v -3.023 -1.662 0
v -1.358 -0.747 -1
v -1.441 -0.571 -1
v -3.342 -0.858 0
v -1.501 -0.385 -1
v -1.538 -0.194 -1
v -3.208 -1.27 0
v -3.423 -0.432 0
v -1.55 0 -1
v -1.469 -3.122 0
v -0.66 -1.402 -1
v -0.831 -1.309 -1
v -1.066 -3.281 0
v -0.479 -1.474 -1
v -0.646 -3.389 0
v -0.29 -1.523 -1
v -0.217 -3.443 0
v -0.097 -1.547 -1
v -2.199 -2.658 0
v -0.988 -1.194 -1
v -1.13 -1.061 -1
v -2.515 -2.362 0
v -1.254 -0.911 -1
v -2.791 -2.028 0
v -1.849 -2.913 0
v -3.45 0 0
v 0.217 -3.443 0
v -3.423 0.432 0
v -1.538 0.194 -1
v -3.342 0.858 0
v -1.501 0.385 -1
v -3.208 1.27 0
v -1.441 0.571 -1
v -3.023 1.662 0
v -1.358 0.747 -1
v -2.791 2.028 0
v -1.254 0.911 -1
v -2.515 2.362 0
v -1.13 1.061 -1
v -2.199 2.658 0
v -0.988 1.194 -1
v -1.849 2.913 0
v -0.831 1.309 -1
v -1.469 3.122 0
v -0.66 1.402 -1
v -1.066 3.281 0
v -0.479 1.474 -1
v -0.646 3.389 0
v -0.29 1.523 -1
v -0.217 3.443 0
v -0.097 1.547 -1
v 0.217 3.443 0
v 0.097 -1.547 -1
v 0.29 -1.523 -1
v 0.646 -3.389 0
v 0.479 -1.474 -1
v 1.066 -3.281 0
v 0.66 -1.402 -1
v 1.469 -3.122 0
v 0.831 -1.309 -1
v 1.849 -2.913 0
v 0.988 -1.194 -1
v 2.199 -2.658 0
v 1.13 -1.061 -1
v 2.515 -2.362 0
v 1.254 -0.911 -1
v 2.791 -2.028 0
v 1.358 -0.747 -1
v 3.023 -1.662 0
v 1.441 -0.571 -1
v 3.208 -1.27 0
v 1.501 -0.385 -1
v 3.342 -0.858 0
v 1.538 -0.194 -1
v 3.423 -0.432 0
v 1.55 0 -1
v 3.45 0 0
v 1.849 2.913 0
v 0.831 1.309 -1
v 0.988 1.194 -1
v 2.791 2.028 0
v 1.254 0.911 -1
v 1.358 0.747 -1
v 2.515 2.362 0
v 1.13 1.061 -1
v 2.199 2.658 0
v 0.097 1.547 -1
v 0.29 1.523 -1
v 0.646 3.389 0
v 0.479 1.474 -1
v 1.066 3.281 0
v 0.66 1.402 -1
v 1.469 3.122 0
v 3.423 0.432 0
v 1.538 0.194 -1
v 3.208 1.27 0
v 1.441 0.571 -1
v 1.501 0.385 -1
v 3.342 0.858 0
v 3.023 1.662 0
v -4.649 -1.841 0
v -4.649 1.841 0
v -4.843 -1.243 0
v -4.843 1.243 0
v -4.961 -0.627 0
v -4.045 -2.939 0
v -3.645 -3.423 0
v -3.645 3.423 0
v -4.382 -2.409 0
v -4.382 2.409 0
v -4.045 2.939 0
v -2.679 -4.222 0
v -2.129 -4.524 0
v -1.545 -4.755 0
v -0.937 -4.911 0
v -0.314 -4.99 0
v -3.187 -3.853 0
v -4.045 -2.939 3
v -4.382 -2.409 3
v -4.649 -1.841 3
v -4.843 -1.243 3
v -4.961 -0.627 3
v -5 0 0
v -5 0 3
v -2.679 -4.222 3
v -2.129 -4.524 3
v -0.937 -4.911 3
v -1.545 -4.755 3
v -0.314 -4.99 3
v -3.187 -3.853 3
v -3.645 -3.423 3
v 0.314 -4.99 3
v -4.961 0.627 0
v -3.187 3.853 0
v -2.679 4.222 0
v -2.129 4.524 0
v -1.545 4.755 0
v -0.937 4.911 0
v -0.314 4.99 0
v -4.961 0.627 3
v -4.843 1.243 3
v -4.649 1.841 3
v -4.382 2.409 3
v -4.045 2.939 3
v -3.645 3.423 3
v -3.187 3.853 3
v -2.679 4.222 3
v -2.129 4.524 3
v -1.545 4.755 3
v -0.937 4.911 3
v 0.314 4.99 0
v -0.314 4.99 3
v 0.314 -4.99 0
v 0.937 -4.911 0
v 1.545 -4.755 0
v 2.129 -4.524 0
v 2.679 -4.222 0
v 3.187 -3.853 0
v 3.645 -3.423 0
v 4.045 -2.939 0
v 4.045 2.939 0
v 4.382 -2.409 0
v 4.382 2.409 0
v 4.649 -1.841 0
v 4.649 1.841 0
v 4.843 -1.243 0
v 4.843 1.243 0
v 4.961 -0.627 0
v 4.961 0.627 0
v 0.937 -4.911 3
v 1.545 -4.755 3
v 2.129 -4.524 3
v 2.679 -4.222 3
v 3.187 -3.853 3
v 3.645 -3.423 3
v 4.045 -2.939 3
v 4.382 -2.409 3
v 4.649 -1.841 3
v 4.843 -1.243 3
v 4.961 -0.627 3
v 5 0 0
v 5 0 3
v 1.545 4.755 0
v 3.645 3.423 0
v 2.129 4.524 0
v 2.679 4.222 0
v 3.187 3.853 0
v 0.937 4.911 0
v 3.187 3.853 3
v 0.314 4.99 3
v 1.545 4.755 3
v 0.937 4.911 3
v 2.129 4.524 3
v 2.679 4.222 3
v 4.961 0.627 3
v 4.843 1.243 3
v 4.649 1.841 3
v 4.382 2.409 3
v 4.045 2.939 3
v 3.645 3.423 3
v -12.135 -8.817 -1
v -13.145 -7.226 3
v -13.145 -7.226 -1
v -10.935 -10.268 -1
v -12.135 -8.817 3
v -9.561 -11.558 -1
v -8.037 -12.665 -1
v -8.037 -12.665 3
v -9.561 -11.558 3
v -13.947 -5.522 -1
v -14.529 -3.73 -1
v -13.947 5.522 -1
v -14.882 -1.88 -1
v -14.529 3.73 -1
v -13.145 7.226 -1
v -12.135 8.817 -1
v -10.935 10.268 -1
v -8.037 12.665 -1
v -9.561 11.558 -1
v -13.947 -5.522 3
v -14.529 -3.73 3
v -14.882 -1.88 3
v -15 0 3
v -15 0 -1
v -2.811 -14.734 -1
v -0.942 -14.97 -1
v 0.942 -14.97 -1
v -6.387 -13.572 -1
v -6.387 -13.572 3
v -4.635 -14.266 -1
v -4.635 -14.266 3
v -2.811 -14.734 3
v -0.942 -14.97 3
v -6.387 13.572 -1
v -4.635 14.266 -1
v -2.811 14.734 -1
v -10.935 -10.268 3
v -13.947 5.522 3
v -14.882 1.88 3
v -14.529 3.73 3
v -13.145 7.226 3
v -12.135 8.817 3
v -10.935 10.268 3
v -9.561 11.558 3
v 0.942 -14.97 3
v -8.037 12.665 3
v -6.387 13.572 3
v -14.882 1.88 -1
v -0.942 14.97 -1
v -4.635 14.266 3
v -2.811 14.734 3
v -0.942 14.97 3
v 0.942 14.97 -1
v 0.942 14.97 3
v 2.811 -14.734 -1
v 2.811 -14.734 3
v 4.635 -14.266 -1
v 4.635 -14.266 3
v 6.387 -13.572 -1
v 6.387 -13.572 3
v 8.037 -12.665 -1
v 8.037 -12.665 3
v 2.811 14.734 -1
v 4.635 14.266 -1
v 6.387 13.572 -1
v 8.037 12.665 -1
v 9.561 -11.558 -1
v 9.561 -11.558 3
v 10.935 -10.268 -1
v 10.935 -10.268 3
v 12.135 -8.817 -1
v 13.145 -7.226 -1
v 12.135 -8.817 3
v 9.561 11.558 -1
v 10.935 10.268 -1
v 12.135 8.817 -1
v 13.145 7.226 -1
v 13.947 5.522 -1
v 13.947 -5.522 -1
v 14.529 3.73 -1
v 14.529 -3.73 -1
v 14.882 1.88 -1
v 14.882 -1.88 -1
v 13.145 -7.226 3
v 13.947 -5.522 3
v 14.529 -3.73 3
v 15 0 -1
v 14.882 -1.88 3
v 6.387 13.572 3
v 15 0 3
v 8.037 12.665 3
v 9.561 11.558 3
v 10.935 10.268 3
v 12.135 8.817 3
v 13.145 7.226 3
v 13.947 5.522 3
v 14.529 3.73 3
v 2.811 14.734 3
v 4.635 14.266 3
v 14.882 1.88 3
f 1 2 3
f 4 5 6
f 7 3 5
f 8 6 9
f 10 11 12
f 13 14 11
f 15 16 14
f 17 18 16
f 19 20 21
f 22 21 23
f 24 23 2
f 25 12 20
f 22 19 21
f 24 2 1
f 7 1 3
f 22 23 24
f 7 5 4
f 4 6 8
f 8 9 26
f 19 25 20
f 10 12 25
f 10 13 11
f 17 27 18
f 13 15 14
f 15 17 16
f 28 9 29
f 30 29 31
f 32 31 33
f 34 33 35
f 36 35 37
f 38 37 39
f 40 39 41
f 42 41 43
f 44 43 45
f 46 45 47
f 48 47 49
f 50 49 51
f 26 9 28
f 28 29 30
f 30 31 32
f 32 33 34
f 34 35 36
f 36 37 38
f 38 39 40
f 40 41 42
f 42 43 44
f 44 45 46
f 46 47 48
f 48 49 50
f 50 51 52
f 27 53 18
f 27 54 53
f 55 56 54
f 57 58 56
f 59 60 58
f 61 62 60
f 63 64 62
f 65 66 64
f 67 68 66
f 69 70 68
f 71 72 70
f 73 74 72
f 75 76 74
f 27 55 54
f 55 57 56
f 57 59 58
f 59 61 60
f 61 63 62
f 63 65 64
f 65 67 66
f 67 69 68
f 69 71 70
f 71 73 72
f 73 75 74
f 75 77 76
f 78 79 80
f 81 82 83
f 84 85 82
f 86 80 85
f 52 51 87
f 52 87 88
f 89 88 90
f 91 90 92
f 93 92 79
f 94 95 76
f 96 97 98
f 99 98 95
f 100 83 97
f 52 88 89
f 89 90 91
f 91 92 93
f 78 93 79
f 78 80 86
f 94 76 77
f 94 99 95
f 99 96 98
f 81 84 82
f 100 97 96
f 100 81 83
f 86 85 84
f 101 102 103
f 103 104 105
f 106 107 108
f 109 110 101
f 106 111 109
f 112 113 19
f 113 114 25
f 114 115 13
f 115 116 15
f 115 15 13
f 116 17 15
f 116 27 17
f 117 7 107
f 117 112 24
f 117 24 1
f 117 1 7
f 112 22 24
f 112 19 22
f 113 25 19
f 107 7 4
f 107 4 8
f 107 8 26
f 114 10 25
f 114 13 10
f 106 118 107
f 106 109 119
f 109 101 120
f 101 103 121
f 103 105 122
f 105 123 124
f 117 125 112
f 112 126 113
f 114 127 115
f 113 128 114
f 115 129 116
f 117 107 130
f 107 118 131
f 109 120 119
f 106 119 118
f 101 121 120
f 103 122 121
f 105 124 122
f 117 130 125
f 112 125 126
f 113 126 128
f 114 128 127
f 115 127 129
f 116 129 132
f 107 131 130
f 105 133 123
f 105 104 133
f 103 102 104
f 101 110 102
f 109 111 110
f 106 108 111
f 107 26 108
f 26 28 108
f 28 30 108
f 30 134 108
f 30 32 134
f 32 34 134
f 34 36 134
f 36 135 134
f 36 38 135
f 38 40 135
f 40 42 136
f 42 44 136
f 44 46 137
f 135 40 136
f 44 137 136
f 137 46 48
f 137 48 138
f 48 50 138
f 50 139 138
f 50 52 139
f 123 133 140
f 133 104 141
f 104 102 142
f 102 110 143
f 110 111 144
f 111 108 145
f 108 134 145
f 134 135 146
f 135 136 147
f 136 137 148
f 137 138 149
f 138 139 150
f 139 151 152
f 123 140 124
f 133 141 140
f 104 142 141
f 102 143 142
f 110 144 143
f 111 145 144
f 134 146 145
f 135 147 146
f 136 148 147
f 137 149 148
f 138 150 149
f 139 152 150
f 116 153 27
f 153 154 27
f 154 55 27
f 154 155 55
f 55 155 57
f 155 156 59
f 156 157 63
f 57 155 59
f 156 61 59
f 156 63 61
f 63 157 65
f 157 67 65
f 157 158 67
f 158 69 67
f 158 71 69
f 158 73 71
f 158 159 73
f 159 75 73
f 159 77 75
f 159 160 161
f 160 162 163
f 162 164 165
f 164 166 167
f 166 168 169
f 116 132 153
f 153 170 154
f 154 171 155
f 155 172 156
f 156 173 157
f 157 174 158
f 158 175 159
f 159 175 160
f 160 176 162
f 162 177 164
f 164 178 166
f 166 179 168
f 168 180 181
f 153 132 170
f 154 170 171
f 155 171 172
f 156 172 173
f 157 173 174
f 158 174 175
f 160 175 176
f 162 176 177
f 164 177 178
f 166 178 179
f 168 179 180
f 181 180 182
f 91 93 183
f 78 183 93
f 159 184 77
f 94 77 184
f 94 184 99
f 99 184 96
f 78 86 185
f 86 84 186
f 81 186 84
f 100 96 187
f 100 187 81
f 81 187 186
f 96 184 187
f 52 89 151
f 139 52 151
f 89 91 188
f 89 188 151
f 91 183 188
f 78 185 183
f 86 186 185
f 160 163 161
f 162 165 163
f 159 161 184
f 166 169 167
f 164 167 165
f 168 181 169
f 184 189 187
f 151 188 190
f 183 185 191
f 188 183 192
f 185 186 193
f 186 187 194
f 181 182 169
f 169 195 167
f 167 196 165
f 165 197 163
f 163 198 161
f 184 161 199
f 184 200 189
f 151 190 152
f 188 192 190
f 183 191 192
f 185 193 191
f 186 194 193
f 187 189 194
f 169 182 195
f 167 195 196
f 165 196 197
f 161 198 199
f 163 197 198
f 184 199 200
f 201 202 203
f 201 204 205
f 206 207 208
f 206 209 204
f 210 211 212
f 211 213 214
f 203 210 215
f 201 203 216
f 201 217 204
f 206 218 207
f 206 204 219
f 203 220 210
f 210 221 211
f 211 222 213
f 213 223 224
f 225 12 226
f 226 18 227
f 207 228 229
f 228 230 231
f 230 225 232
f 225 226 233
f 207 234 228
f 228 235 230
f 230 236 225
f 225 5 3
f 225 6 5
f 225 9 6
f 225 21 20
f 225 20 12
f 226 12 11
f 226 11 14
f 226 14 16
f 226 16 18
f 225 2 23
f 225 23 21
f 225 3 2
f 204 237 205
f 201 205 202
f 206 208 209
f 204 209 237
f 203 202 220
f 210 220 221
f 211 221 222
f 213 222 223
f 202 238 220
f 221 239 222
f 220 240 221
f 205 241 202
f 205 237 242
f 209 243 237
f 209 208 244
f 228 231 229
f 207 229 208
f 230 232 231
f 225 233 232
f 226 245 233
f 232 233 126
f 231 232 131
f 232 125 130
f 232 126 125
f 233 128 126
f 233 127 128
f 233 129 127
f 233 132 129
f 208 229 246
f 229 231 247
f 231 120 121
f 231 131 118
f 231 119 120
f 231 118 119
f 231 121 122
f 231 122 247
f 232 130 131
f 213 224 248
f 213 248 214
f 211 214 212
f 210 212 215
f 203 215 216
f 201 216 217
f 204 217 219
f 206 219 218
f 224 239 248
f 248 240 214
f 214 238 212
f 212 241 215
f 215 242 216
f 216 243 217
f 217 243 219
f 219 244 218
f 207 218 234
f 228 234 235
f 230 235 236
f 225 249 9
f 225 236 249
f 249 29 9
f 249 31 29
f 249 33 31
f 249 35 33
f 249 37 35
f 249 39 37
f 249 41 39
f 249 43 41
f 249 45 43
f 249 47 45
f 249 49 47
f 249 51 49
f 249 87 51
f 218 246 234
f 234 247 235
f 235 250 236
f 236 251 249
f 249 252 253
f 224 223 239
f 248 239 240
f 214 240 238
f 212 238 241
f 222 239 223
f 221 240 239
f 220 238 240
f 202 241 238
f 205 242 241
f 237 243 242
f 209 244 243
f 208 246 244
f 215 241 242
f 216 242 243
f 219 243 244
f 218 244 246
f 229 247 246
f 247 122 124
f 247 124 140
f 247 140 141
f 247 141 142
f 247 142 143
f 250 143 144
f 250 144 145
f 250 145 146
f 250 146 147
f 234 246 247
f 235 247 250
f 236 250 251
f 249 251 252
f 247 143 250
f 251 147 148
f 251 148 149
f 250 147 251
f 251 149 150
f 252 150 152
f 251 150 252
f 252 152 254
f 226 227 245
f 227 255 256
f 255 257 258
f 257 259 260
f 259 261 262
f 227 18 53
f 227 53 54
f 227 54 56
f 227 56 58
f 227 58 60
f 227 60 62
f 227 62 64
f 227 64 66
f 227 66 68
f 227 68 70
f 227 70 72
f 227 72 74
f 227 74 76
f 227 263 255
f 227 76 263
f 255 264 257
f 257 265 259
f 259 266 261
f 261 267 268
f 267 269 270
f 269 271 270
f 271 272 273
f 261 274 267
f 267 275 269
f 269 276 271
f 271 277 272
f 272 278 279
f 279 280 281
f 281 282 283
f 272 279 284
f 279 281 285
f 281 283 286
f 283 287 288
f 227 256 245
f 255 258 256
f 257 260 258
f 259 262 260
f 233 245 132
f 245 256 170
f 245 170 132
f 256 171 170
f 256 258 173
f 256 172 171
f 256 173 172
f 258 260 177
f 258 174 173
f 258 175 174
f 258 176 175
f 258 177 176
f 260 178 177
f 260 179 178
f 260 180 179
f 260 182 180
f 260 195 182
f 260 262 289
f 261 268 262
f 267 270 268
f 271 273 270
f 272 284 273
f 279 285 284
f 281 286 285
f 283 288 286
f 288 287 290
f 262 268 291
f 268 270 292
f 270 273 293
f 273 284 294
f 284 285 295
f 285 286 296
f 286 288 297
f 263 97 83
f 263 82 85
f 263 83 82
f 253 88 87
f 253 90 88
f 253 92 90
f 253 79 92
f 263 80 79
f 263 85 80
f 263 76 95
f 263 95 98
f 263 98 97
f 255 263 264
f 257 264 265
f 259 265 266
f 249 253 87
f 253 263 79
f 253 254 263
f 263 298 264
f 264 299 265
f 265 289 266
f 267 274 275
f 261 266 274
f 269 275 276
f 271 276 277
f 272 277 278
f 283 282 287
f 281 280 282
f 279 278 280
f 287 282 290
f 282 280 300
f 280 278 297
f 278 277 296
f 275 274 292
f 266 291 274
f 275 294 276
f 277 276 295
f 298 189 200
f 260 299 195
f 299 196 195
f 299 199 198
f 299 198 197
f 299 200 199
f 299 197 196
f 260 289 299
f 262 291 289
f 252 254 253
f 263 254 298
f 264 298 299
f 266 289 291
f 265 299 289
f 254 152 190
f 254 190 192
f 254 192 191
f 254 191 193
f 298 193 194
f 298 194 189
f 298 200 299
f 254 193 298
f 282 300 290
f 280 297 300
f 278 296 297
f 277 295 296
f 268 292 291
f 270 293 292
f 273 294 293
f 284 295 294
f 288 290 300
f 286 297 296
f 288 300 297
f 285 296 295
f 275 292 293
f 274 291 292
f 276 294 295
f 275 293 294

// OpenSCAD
$fn = 50;

difference() {
	union() {
		translate(v = [0, 0, -1.0]) {
			cylinder(h = 4.0, r = 15.0);
		}
	}
	union() {
		translate(v = [0, 0, 0]) {
			rotate(a = [0, 0, 0]) {
				difference() {
					union() {
						translate(v = [0, 0, -4.0]) {
							cylinder(h = 4.0, r = 1.25);
						}
						translate(v = [0, 0, -1.0]) {
							cylinder(h = 1.0, r1 = 1.55, r2 = 3.45);
						}
						translate(v = [0, 0, -4.0]) {
							cylinder(h = 4.0, r = 1.55);
						}
						translate(v = [0, 0, -4.0]) {
							cylinder(h = 4.0, r = 1.25);
						}
					}
					union();
				}
			}
		}
		#cylinder(h = 3, r = 5.0);
	}
}
